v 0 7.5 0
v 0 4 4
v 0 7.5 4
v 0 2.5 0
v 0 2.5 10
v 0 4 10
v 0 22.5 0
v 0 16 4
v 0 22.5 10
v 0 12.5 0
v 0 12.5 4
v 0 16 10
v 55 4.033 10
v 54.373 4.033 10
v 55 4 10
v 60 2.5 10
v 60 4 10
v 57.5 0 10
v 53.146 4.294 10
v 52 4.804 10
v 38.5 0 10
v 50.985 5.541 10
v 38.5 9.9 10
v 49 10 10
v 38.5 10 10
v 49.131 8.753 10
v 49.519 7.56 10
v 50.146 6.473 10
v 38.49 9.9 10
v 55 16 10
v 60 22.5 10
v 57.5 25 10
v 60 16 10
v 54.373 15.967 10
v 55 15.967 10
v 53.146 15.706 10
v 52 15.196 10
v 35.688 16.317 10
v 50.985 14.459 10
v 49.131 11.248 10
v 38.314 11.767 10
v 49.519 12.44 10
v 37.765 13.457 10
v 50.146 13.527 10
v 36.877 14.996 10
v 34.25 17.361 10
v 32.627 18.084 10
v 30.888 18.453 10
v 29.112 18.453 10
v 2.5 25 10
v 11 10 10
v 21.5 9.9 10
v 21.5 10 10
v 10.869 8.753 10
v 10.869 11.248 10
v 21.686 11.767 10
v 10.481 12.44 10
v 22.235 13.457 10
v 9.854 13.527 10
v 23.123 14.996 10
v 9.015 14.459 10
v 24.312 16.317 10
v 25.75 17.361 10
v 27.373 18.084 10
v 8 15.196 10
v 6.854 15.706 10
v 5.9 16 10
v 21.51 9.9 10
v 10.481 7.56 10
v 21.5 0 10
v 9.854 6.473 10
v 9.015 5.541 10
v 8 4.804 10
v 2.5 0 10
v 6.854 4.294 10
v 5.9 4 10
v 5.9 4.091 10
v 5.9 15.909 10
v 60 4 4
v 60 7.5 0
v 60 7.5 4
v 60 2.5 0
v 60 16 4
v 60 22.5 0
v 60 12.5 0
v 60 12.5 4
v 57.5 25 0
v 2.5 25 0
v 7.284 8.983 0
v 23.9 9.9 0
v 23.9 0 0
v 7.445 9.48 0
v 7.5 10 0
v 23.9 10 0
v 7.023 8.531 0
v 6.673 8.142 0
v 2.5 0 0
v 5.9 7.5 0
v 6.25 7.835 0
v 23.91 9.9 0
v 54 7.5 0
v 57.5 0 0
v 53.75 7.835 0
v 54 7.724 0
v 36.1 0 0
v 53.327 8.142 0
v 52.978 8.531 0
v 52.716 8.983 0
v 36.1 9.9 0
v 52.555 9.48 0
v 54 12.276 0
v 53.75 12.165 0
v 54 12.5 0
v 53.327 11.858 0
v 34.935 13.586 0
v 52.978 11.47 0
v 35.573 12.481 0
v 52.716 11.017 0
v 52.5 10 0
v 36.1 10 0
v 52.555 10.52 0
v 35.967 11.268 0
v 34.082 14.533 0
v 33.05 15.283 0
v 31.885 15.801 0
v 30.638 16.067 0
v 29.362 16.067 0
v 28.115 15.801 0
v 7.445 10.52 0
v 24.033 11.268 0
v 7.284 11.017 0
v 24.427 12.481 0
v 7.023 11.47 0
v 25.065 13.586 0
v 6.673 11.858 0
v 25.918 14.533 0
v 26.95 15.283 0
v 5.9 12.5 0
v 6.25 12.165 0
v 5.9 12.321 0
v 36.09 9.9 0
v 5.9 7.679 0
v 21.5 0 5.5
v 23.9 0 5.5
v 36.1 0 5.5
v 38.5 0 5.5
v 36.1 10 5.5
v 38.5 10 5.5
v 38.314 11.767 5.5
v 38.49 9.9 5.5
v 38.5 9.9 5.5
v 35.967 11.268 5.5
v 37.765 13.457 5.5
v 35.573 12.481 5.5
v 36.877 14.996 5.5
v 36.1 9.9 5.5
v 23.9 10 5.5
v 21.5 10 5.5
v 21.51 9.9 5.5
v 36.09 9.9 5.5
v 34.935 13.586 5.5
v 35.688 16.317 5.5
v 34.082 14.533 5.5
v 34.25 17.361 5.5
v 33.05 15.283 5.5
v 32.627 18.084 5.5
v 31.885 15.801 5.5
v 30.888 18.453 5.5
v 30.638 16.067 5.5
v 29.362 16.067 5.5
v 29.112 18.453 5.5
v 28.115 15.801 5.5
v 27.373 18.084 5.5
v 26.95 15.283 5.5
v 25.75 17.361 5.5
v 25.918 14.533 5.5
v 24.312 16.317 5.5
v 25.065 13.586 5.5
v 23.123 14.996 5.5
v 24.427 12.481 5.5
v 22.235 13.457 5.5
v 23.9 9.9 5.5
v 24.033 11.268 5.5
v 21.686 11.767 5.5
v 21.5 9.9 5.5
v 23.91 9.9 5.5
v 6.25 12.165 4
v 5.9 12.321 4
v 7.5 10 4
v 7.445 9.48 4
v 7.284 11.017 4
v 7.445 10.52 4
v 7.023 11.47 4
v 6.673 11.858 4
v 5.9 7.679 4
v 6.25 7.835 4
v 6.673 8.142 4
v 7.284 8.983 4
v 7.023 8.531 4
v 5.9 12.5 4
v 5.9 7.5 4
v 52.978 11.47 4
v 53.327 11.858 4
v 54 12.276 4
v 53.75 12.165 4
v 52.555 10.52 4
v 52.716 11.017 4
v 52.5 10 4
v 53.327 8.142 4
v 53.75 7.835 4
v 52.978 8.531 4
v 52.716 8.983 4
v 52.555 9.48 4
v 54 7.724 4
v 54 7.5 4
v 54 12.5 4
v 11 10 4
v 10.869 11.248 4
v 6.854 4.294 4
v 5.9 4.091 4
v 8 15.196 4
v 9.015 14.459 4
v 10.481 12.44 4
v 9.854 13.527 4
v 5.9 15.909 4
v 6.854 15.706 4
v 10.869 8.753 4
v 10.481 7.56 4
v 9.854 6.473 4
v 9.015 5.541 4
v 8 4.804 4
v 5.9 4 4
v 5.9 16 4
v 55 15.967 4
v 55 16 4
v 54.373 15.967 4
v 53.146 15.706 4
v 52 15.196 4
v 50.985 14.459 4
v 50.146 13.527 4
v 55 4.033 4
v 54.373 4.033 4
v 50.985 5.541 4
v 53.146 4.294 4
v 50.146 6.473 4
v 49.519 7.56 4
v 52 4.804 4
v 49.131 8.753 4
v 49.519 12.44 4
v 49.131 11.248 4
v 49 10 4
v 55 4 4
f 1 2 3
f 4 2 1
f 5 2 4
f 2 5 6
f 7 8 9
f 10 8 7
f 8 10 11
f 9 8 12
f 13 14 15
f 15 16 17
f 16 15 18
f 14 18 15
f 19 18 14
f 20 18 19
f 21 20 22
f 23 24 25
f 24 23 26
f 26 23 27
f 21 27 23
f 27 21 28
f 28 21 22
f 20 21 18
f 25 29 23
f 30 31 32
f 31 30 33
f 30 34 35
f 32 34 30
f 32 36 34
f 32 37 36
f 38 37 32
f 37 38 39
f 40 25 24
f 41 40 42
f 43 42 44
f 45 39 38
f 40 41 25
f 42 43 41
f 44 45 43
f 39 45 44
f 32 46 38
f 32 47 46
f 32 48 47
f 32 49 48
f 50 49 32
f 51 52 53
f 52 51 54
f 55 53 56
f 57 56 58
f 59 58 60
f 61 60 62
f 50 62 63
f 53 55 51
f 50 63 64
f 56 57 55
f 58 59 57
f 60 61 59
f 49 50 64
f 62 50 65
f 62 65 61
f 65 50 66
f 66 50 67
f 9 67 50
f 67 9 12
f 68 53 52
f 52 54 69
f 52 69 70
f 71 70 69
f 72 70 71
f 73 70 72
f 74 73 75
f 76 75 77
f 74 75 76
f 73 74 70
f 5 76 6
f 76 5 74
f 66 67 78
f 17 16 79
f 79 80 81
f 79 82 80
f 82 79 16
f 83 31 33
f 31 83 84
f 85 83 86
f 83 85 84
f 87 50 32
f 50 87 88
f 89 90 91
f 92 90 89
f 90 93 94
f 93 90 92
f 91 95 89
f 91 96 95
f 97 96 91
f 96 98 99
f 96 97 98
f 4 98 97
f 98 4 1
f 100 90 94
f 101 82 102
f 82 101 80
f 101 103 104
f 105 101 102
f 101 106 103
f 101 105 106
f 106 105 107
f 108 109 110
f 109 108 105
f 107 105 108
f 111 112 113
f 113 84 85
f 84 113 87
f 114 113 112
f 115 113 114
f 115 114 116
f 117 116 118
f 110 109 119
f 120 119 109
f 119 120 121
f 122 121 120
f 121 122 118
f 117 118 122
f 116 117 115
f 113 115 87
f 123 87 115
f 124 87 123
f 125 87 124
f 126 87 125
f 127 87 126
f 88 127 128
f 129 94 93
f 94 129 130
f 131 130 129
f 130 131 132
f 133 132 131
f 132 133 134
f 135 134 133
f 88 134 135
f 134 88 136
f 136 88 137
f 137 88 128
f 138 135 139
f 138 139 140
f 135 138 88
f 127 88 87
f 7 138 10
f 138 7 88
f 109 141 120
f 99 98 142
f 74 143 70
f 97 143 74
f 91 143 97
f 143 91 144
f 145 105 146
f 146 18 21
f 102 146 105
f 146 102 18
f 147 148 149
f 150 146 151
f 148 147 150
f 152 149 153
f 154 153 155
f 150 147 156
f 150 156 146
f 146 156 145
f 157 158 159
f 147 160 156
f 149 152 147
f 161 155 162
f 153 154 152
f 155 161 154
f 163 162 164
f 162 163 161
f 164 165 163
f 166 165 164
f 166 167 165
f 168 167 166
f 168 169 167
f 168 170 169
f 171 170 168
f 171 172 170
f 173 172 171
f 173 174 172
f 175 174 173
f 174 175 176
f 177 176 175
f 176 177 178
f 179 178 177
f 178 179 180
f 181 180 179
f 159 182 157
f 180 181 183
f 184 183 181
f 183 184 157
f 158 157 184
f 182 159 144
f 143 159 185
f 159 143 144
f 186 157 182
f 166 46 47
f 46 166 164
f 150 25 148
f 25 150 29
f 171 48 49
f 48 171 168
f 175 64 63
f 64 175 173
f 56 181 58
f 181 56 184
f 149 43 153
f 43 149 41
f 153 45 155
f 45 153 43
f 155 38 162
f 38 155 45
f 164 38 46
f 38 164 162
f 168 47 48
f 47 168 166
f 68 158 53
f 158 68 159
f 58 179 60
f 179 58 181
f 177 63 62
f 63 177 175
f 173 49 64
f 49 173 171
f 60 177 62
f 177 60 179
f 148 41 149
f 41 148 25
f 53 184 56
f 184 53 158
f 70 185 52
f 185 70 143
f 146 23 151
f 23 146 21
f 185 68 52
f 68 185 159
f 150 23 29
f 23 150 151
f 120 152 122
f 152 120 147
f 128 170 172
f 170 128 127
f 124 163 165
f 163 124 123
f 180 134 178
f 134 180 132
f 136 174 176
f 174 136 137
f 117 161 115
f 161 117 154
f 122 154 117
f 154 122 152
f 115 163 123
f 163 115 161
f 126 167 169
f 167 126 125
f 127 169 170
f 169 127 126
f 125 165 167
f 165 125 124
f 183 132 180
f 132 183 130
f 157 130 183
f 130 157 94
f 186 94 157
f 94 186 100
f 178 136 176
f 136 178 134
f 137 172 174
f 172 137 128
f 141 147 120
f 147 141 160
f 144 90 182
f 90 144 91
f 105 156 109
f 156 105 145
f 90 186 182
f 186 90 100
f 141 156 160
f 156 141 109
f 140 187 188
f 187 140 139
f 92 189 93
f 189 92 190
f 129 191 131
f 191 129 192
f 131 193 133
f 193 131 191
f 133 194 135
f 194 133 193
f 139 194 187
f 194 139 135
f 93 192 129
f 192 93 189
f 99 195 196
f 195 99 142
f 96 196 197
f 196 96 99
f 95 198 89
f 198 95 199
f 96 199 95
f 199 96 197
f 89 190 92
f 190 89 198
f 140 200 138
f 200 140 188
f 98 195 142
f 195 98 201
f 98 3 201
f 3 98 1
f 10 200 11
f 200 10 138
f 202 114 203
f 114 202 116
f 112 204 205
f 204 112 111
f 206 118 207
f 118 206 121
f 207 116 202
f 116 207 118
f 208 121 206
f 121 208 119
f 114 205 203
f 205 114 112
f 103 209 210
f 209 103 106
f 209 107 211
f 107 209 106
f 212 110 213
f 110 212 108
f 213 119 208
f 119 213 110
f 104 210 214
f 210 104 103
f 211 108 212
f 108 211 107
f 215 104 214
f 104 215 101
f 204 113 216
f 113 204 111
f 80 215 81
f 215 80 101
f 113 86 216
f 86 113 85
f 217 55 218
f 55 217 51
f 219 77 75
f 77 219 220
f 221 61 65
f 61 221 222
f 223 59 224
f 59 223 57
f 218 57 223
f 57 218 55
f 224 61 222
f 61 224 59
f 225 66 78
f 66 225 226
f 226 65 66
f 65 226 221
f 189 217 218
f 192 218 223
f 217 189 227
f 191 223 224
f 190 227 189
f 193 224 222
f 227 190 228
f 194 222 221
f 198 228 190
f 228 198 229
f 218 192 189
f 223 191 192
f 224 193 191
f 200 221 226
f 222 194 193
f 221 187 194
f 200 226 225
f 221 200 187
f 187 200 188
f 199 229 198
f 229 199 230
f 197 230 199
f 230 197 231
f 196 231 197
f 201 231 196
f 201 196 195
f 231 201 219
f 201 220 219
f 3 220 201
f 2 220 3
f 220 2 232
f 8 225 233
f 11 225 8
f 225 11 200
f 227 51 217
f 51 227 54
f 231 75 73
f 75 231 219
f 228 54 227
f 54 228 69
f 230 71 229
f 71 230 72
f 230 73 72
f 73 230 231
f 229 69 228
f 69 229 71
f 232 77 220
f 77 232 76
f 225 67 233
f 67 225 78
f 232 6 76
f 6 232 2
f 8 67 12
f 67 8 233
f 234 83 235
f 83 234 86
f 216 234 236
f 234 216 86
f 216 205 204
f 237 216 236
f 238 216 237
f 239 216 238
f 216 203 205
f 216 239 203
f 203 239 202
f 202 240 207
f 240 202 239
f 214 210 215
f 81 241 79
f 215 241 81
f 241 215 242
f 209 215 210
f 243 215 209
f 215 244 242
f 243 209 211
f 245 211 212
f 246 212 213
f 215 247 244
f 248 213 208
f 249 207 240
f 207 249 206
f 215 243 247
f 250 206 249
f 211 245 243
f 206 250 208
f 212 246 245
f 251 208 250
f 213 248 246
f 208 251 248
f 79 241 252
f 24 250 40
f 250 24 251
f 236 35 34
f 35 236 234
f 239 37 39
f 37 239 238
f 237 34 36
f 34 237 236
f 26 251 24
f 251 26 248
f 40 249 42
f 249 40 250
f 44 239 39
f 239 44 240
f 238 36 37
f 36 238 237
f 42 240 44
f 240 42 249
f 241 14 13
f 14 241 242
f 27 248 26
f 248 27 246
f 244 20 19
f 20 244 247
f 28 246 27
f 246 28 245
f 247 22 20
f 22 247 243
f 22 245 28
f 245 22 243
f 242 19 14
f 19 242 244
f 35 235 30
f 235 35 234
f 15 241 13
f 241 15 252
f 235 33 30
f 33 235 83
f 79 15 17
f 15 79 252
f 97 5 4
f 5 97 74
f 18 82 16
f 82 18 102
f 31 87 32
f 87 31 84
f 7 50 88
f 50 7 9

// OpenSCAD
// RebeliX
//
// j-head mount + fan 40mm
// GNU GPL v3
// Martin Neruda
// http://www.reprap4u.cz

fan_width = 40;
fan_diameter = 38;
fan_mount = 33;

mount_height = 10;
shell_height = 5.5;
screw_distance = 50;

module jhead(){
difference(){
	union(){
	  cube([60,25,mount_height]);
	  //translate([60/2-fan_width/2,20,0]) cube([fan_width,10,mount_height]);
	}
	// Vyrez pro ventilator
	/* translate([60/2-fan_width/2-0.1,20+3.5,0]) rotate([-45,0,0]) cube([fan_width+1,15,15]);
	translate([60/2,32,21]) rotate([-135,0,0]) cylinder(r=fan_diameter/2, h=20);
	translate([60/2,20+2,7.4]){
	    translate([fan_mount/2,0,0]) rotate([-135,0,0]) cylinder(r=1.1,h=30,$fn=20,center=true);
	    translate([-fan_mount/2,0,0]) rotate([-135,0,0]) cylinder(r=1.1,h=30,$fn=20,center=true);
	}*/

	translate([30,10,shell_height]) cylinder(r=8.5,h=6,$fn=30);
	translate([30-8.5,-0.1,shell_height]) cube([17,10,6]);

	translate([30,10,-0.1]) cylinder(r=6.1,h=10,$fn=30);
	translate([30-6.1,-0.1,-0.1]) cube([12.2,10,10]);

	// Otvory pro prisroubovani
	translate([30-screw_distance/2,10,-0.1]) cylinder(r=2.5,h=10,$fn=30);
	translate([-0.1,10-2.5,-0.1]) cube([6,5,10]);

	translate([30+screw_distance/2,10,-0.1]) cylinder(r=2.5,h=10,$fn=30);
	translate([30+24,10-2.5,-0.1]) cube([7,5,10]);

	translate([30-screw_distance/2,10,4]) cylinder(r=6,h=10,$fn=30);
	translate([-0.1,10-6,4]) cube([6,12,10]);

	translate([30+screw_distance/2,10,4]) cylinder(r=6,h=10,$fn=30);
	translate([30+screw_distance/2,10-6,4]) cube([7,12,10]);

	// Seriznute rohy
	translate([2.5,0,-0.1]) rotate([0,0,135]) cube([5,5,11]);
	translate([60-2.5,0,-0.1]) rotate([0,0,-45]) cube([5,5,11]);
	translate([60,20+2.5,-0.1]) rotate([0,0,45]) cube([5,5,11]);
	translate([2.5,20+5,-0.1]) rotate([0,0,135]) cube([5,5,11]);
}
}

jhead();
